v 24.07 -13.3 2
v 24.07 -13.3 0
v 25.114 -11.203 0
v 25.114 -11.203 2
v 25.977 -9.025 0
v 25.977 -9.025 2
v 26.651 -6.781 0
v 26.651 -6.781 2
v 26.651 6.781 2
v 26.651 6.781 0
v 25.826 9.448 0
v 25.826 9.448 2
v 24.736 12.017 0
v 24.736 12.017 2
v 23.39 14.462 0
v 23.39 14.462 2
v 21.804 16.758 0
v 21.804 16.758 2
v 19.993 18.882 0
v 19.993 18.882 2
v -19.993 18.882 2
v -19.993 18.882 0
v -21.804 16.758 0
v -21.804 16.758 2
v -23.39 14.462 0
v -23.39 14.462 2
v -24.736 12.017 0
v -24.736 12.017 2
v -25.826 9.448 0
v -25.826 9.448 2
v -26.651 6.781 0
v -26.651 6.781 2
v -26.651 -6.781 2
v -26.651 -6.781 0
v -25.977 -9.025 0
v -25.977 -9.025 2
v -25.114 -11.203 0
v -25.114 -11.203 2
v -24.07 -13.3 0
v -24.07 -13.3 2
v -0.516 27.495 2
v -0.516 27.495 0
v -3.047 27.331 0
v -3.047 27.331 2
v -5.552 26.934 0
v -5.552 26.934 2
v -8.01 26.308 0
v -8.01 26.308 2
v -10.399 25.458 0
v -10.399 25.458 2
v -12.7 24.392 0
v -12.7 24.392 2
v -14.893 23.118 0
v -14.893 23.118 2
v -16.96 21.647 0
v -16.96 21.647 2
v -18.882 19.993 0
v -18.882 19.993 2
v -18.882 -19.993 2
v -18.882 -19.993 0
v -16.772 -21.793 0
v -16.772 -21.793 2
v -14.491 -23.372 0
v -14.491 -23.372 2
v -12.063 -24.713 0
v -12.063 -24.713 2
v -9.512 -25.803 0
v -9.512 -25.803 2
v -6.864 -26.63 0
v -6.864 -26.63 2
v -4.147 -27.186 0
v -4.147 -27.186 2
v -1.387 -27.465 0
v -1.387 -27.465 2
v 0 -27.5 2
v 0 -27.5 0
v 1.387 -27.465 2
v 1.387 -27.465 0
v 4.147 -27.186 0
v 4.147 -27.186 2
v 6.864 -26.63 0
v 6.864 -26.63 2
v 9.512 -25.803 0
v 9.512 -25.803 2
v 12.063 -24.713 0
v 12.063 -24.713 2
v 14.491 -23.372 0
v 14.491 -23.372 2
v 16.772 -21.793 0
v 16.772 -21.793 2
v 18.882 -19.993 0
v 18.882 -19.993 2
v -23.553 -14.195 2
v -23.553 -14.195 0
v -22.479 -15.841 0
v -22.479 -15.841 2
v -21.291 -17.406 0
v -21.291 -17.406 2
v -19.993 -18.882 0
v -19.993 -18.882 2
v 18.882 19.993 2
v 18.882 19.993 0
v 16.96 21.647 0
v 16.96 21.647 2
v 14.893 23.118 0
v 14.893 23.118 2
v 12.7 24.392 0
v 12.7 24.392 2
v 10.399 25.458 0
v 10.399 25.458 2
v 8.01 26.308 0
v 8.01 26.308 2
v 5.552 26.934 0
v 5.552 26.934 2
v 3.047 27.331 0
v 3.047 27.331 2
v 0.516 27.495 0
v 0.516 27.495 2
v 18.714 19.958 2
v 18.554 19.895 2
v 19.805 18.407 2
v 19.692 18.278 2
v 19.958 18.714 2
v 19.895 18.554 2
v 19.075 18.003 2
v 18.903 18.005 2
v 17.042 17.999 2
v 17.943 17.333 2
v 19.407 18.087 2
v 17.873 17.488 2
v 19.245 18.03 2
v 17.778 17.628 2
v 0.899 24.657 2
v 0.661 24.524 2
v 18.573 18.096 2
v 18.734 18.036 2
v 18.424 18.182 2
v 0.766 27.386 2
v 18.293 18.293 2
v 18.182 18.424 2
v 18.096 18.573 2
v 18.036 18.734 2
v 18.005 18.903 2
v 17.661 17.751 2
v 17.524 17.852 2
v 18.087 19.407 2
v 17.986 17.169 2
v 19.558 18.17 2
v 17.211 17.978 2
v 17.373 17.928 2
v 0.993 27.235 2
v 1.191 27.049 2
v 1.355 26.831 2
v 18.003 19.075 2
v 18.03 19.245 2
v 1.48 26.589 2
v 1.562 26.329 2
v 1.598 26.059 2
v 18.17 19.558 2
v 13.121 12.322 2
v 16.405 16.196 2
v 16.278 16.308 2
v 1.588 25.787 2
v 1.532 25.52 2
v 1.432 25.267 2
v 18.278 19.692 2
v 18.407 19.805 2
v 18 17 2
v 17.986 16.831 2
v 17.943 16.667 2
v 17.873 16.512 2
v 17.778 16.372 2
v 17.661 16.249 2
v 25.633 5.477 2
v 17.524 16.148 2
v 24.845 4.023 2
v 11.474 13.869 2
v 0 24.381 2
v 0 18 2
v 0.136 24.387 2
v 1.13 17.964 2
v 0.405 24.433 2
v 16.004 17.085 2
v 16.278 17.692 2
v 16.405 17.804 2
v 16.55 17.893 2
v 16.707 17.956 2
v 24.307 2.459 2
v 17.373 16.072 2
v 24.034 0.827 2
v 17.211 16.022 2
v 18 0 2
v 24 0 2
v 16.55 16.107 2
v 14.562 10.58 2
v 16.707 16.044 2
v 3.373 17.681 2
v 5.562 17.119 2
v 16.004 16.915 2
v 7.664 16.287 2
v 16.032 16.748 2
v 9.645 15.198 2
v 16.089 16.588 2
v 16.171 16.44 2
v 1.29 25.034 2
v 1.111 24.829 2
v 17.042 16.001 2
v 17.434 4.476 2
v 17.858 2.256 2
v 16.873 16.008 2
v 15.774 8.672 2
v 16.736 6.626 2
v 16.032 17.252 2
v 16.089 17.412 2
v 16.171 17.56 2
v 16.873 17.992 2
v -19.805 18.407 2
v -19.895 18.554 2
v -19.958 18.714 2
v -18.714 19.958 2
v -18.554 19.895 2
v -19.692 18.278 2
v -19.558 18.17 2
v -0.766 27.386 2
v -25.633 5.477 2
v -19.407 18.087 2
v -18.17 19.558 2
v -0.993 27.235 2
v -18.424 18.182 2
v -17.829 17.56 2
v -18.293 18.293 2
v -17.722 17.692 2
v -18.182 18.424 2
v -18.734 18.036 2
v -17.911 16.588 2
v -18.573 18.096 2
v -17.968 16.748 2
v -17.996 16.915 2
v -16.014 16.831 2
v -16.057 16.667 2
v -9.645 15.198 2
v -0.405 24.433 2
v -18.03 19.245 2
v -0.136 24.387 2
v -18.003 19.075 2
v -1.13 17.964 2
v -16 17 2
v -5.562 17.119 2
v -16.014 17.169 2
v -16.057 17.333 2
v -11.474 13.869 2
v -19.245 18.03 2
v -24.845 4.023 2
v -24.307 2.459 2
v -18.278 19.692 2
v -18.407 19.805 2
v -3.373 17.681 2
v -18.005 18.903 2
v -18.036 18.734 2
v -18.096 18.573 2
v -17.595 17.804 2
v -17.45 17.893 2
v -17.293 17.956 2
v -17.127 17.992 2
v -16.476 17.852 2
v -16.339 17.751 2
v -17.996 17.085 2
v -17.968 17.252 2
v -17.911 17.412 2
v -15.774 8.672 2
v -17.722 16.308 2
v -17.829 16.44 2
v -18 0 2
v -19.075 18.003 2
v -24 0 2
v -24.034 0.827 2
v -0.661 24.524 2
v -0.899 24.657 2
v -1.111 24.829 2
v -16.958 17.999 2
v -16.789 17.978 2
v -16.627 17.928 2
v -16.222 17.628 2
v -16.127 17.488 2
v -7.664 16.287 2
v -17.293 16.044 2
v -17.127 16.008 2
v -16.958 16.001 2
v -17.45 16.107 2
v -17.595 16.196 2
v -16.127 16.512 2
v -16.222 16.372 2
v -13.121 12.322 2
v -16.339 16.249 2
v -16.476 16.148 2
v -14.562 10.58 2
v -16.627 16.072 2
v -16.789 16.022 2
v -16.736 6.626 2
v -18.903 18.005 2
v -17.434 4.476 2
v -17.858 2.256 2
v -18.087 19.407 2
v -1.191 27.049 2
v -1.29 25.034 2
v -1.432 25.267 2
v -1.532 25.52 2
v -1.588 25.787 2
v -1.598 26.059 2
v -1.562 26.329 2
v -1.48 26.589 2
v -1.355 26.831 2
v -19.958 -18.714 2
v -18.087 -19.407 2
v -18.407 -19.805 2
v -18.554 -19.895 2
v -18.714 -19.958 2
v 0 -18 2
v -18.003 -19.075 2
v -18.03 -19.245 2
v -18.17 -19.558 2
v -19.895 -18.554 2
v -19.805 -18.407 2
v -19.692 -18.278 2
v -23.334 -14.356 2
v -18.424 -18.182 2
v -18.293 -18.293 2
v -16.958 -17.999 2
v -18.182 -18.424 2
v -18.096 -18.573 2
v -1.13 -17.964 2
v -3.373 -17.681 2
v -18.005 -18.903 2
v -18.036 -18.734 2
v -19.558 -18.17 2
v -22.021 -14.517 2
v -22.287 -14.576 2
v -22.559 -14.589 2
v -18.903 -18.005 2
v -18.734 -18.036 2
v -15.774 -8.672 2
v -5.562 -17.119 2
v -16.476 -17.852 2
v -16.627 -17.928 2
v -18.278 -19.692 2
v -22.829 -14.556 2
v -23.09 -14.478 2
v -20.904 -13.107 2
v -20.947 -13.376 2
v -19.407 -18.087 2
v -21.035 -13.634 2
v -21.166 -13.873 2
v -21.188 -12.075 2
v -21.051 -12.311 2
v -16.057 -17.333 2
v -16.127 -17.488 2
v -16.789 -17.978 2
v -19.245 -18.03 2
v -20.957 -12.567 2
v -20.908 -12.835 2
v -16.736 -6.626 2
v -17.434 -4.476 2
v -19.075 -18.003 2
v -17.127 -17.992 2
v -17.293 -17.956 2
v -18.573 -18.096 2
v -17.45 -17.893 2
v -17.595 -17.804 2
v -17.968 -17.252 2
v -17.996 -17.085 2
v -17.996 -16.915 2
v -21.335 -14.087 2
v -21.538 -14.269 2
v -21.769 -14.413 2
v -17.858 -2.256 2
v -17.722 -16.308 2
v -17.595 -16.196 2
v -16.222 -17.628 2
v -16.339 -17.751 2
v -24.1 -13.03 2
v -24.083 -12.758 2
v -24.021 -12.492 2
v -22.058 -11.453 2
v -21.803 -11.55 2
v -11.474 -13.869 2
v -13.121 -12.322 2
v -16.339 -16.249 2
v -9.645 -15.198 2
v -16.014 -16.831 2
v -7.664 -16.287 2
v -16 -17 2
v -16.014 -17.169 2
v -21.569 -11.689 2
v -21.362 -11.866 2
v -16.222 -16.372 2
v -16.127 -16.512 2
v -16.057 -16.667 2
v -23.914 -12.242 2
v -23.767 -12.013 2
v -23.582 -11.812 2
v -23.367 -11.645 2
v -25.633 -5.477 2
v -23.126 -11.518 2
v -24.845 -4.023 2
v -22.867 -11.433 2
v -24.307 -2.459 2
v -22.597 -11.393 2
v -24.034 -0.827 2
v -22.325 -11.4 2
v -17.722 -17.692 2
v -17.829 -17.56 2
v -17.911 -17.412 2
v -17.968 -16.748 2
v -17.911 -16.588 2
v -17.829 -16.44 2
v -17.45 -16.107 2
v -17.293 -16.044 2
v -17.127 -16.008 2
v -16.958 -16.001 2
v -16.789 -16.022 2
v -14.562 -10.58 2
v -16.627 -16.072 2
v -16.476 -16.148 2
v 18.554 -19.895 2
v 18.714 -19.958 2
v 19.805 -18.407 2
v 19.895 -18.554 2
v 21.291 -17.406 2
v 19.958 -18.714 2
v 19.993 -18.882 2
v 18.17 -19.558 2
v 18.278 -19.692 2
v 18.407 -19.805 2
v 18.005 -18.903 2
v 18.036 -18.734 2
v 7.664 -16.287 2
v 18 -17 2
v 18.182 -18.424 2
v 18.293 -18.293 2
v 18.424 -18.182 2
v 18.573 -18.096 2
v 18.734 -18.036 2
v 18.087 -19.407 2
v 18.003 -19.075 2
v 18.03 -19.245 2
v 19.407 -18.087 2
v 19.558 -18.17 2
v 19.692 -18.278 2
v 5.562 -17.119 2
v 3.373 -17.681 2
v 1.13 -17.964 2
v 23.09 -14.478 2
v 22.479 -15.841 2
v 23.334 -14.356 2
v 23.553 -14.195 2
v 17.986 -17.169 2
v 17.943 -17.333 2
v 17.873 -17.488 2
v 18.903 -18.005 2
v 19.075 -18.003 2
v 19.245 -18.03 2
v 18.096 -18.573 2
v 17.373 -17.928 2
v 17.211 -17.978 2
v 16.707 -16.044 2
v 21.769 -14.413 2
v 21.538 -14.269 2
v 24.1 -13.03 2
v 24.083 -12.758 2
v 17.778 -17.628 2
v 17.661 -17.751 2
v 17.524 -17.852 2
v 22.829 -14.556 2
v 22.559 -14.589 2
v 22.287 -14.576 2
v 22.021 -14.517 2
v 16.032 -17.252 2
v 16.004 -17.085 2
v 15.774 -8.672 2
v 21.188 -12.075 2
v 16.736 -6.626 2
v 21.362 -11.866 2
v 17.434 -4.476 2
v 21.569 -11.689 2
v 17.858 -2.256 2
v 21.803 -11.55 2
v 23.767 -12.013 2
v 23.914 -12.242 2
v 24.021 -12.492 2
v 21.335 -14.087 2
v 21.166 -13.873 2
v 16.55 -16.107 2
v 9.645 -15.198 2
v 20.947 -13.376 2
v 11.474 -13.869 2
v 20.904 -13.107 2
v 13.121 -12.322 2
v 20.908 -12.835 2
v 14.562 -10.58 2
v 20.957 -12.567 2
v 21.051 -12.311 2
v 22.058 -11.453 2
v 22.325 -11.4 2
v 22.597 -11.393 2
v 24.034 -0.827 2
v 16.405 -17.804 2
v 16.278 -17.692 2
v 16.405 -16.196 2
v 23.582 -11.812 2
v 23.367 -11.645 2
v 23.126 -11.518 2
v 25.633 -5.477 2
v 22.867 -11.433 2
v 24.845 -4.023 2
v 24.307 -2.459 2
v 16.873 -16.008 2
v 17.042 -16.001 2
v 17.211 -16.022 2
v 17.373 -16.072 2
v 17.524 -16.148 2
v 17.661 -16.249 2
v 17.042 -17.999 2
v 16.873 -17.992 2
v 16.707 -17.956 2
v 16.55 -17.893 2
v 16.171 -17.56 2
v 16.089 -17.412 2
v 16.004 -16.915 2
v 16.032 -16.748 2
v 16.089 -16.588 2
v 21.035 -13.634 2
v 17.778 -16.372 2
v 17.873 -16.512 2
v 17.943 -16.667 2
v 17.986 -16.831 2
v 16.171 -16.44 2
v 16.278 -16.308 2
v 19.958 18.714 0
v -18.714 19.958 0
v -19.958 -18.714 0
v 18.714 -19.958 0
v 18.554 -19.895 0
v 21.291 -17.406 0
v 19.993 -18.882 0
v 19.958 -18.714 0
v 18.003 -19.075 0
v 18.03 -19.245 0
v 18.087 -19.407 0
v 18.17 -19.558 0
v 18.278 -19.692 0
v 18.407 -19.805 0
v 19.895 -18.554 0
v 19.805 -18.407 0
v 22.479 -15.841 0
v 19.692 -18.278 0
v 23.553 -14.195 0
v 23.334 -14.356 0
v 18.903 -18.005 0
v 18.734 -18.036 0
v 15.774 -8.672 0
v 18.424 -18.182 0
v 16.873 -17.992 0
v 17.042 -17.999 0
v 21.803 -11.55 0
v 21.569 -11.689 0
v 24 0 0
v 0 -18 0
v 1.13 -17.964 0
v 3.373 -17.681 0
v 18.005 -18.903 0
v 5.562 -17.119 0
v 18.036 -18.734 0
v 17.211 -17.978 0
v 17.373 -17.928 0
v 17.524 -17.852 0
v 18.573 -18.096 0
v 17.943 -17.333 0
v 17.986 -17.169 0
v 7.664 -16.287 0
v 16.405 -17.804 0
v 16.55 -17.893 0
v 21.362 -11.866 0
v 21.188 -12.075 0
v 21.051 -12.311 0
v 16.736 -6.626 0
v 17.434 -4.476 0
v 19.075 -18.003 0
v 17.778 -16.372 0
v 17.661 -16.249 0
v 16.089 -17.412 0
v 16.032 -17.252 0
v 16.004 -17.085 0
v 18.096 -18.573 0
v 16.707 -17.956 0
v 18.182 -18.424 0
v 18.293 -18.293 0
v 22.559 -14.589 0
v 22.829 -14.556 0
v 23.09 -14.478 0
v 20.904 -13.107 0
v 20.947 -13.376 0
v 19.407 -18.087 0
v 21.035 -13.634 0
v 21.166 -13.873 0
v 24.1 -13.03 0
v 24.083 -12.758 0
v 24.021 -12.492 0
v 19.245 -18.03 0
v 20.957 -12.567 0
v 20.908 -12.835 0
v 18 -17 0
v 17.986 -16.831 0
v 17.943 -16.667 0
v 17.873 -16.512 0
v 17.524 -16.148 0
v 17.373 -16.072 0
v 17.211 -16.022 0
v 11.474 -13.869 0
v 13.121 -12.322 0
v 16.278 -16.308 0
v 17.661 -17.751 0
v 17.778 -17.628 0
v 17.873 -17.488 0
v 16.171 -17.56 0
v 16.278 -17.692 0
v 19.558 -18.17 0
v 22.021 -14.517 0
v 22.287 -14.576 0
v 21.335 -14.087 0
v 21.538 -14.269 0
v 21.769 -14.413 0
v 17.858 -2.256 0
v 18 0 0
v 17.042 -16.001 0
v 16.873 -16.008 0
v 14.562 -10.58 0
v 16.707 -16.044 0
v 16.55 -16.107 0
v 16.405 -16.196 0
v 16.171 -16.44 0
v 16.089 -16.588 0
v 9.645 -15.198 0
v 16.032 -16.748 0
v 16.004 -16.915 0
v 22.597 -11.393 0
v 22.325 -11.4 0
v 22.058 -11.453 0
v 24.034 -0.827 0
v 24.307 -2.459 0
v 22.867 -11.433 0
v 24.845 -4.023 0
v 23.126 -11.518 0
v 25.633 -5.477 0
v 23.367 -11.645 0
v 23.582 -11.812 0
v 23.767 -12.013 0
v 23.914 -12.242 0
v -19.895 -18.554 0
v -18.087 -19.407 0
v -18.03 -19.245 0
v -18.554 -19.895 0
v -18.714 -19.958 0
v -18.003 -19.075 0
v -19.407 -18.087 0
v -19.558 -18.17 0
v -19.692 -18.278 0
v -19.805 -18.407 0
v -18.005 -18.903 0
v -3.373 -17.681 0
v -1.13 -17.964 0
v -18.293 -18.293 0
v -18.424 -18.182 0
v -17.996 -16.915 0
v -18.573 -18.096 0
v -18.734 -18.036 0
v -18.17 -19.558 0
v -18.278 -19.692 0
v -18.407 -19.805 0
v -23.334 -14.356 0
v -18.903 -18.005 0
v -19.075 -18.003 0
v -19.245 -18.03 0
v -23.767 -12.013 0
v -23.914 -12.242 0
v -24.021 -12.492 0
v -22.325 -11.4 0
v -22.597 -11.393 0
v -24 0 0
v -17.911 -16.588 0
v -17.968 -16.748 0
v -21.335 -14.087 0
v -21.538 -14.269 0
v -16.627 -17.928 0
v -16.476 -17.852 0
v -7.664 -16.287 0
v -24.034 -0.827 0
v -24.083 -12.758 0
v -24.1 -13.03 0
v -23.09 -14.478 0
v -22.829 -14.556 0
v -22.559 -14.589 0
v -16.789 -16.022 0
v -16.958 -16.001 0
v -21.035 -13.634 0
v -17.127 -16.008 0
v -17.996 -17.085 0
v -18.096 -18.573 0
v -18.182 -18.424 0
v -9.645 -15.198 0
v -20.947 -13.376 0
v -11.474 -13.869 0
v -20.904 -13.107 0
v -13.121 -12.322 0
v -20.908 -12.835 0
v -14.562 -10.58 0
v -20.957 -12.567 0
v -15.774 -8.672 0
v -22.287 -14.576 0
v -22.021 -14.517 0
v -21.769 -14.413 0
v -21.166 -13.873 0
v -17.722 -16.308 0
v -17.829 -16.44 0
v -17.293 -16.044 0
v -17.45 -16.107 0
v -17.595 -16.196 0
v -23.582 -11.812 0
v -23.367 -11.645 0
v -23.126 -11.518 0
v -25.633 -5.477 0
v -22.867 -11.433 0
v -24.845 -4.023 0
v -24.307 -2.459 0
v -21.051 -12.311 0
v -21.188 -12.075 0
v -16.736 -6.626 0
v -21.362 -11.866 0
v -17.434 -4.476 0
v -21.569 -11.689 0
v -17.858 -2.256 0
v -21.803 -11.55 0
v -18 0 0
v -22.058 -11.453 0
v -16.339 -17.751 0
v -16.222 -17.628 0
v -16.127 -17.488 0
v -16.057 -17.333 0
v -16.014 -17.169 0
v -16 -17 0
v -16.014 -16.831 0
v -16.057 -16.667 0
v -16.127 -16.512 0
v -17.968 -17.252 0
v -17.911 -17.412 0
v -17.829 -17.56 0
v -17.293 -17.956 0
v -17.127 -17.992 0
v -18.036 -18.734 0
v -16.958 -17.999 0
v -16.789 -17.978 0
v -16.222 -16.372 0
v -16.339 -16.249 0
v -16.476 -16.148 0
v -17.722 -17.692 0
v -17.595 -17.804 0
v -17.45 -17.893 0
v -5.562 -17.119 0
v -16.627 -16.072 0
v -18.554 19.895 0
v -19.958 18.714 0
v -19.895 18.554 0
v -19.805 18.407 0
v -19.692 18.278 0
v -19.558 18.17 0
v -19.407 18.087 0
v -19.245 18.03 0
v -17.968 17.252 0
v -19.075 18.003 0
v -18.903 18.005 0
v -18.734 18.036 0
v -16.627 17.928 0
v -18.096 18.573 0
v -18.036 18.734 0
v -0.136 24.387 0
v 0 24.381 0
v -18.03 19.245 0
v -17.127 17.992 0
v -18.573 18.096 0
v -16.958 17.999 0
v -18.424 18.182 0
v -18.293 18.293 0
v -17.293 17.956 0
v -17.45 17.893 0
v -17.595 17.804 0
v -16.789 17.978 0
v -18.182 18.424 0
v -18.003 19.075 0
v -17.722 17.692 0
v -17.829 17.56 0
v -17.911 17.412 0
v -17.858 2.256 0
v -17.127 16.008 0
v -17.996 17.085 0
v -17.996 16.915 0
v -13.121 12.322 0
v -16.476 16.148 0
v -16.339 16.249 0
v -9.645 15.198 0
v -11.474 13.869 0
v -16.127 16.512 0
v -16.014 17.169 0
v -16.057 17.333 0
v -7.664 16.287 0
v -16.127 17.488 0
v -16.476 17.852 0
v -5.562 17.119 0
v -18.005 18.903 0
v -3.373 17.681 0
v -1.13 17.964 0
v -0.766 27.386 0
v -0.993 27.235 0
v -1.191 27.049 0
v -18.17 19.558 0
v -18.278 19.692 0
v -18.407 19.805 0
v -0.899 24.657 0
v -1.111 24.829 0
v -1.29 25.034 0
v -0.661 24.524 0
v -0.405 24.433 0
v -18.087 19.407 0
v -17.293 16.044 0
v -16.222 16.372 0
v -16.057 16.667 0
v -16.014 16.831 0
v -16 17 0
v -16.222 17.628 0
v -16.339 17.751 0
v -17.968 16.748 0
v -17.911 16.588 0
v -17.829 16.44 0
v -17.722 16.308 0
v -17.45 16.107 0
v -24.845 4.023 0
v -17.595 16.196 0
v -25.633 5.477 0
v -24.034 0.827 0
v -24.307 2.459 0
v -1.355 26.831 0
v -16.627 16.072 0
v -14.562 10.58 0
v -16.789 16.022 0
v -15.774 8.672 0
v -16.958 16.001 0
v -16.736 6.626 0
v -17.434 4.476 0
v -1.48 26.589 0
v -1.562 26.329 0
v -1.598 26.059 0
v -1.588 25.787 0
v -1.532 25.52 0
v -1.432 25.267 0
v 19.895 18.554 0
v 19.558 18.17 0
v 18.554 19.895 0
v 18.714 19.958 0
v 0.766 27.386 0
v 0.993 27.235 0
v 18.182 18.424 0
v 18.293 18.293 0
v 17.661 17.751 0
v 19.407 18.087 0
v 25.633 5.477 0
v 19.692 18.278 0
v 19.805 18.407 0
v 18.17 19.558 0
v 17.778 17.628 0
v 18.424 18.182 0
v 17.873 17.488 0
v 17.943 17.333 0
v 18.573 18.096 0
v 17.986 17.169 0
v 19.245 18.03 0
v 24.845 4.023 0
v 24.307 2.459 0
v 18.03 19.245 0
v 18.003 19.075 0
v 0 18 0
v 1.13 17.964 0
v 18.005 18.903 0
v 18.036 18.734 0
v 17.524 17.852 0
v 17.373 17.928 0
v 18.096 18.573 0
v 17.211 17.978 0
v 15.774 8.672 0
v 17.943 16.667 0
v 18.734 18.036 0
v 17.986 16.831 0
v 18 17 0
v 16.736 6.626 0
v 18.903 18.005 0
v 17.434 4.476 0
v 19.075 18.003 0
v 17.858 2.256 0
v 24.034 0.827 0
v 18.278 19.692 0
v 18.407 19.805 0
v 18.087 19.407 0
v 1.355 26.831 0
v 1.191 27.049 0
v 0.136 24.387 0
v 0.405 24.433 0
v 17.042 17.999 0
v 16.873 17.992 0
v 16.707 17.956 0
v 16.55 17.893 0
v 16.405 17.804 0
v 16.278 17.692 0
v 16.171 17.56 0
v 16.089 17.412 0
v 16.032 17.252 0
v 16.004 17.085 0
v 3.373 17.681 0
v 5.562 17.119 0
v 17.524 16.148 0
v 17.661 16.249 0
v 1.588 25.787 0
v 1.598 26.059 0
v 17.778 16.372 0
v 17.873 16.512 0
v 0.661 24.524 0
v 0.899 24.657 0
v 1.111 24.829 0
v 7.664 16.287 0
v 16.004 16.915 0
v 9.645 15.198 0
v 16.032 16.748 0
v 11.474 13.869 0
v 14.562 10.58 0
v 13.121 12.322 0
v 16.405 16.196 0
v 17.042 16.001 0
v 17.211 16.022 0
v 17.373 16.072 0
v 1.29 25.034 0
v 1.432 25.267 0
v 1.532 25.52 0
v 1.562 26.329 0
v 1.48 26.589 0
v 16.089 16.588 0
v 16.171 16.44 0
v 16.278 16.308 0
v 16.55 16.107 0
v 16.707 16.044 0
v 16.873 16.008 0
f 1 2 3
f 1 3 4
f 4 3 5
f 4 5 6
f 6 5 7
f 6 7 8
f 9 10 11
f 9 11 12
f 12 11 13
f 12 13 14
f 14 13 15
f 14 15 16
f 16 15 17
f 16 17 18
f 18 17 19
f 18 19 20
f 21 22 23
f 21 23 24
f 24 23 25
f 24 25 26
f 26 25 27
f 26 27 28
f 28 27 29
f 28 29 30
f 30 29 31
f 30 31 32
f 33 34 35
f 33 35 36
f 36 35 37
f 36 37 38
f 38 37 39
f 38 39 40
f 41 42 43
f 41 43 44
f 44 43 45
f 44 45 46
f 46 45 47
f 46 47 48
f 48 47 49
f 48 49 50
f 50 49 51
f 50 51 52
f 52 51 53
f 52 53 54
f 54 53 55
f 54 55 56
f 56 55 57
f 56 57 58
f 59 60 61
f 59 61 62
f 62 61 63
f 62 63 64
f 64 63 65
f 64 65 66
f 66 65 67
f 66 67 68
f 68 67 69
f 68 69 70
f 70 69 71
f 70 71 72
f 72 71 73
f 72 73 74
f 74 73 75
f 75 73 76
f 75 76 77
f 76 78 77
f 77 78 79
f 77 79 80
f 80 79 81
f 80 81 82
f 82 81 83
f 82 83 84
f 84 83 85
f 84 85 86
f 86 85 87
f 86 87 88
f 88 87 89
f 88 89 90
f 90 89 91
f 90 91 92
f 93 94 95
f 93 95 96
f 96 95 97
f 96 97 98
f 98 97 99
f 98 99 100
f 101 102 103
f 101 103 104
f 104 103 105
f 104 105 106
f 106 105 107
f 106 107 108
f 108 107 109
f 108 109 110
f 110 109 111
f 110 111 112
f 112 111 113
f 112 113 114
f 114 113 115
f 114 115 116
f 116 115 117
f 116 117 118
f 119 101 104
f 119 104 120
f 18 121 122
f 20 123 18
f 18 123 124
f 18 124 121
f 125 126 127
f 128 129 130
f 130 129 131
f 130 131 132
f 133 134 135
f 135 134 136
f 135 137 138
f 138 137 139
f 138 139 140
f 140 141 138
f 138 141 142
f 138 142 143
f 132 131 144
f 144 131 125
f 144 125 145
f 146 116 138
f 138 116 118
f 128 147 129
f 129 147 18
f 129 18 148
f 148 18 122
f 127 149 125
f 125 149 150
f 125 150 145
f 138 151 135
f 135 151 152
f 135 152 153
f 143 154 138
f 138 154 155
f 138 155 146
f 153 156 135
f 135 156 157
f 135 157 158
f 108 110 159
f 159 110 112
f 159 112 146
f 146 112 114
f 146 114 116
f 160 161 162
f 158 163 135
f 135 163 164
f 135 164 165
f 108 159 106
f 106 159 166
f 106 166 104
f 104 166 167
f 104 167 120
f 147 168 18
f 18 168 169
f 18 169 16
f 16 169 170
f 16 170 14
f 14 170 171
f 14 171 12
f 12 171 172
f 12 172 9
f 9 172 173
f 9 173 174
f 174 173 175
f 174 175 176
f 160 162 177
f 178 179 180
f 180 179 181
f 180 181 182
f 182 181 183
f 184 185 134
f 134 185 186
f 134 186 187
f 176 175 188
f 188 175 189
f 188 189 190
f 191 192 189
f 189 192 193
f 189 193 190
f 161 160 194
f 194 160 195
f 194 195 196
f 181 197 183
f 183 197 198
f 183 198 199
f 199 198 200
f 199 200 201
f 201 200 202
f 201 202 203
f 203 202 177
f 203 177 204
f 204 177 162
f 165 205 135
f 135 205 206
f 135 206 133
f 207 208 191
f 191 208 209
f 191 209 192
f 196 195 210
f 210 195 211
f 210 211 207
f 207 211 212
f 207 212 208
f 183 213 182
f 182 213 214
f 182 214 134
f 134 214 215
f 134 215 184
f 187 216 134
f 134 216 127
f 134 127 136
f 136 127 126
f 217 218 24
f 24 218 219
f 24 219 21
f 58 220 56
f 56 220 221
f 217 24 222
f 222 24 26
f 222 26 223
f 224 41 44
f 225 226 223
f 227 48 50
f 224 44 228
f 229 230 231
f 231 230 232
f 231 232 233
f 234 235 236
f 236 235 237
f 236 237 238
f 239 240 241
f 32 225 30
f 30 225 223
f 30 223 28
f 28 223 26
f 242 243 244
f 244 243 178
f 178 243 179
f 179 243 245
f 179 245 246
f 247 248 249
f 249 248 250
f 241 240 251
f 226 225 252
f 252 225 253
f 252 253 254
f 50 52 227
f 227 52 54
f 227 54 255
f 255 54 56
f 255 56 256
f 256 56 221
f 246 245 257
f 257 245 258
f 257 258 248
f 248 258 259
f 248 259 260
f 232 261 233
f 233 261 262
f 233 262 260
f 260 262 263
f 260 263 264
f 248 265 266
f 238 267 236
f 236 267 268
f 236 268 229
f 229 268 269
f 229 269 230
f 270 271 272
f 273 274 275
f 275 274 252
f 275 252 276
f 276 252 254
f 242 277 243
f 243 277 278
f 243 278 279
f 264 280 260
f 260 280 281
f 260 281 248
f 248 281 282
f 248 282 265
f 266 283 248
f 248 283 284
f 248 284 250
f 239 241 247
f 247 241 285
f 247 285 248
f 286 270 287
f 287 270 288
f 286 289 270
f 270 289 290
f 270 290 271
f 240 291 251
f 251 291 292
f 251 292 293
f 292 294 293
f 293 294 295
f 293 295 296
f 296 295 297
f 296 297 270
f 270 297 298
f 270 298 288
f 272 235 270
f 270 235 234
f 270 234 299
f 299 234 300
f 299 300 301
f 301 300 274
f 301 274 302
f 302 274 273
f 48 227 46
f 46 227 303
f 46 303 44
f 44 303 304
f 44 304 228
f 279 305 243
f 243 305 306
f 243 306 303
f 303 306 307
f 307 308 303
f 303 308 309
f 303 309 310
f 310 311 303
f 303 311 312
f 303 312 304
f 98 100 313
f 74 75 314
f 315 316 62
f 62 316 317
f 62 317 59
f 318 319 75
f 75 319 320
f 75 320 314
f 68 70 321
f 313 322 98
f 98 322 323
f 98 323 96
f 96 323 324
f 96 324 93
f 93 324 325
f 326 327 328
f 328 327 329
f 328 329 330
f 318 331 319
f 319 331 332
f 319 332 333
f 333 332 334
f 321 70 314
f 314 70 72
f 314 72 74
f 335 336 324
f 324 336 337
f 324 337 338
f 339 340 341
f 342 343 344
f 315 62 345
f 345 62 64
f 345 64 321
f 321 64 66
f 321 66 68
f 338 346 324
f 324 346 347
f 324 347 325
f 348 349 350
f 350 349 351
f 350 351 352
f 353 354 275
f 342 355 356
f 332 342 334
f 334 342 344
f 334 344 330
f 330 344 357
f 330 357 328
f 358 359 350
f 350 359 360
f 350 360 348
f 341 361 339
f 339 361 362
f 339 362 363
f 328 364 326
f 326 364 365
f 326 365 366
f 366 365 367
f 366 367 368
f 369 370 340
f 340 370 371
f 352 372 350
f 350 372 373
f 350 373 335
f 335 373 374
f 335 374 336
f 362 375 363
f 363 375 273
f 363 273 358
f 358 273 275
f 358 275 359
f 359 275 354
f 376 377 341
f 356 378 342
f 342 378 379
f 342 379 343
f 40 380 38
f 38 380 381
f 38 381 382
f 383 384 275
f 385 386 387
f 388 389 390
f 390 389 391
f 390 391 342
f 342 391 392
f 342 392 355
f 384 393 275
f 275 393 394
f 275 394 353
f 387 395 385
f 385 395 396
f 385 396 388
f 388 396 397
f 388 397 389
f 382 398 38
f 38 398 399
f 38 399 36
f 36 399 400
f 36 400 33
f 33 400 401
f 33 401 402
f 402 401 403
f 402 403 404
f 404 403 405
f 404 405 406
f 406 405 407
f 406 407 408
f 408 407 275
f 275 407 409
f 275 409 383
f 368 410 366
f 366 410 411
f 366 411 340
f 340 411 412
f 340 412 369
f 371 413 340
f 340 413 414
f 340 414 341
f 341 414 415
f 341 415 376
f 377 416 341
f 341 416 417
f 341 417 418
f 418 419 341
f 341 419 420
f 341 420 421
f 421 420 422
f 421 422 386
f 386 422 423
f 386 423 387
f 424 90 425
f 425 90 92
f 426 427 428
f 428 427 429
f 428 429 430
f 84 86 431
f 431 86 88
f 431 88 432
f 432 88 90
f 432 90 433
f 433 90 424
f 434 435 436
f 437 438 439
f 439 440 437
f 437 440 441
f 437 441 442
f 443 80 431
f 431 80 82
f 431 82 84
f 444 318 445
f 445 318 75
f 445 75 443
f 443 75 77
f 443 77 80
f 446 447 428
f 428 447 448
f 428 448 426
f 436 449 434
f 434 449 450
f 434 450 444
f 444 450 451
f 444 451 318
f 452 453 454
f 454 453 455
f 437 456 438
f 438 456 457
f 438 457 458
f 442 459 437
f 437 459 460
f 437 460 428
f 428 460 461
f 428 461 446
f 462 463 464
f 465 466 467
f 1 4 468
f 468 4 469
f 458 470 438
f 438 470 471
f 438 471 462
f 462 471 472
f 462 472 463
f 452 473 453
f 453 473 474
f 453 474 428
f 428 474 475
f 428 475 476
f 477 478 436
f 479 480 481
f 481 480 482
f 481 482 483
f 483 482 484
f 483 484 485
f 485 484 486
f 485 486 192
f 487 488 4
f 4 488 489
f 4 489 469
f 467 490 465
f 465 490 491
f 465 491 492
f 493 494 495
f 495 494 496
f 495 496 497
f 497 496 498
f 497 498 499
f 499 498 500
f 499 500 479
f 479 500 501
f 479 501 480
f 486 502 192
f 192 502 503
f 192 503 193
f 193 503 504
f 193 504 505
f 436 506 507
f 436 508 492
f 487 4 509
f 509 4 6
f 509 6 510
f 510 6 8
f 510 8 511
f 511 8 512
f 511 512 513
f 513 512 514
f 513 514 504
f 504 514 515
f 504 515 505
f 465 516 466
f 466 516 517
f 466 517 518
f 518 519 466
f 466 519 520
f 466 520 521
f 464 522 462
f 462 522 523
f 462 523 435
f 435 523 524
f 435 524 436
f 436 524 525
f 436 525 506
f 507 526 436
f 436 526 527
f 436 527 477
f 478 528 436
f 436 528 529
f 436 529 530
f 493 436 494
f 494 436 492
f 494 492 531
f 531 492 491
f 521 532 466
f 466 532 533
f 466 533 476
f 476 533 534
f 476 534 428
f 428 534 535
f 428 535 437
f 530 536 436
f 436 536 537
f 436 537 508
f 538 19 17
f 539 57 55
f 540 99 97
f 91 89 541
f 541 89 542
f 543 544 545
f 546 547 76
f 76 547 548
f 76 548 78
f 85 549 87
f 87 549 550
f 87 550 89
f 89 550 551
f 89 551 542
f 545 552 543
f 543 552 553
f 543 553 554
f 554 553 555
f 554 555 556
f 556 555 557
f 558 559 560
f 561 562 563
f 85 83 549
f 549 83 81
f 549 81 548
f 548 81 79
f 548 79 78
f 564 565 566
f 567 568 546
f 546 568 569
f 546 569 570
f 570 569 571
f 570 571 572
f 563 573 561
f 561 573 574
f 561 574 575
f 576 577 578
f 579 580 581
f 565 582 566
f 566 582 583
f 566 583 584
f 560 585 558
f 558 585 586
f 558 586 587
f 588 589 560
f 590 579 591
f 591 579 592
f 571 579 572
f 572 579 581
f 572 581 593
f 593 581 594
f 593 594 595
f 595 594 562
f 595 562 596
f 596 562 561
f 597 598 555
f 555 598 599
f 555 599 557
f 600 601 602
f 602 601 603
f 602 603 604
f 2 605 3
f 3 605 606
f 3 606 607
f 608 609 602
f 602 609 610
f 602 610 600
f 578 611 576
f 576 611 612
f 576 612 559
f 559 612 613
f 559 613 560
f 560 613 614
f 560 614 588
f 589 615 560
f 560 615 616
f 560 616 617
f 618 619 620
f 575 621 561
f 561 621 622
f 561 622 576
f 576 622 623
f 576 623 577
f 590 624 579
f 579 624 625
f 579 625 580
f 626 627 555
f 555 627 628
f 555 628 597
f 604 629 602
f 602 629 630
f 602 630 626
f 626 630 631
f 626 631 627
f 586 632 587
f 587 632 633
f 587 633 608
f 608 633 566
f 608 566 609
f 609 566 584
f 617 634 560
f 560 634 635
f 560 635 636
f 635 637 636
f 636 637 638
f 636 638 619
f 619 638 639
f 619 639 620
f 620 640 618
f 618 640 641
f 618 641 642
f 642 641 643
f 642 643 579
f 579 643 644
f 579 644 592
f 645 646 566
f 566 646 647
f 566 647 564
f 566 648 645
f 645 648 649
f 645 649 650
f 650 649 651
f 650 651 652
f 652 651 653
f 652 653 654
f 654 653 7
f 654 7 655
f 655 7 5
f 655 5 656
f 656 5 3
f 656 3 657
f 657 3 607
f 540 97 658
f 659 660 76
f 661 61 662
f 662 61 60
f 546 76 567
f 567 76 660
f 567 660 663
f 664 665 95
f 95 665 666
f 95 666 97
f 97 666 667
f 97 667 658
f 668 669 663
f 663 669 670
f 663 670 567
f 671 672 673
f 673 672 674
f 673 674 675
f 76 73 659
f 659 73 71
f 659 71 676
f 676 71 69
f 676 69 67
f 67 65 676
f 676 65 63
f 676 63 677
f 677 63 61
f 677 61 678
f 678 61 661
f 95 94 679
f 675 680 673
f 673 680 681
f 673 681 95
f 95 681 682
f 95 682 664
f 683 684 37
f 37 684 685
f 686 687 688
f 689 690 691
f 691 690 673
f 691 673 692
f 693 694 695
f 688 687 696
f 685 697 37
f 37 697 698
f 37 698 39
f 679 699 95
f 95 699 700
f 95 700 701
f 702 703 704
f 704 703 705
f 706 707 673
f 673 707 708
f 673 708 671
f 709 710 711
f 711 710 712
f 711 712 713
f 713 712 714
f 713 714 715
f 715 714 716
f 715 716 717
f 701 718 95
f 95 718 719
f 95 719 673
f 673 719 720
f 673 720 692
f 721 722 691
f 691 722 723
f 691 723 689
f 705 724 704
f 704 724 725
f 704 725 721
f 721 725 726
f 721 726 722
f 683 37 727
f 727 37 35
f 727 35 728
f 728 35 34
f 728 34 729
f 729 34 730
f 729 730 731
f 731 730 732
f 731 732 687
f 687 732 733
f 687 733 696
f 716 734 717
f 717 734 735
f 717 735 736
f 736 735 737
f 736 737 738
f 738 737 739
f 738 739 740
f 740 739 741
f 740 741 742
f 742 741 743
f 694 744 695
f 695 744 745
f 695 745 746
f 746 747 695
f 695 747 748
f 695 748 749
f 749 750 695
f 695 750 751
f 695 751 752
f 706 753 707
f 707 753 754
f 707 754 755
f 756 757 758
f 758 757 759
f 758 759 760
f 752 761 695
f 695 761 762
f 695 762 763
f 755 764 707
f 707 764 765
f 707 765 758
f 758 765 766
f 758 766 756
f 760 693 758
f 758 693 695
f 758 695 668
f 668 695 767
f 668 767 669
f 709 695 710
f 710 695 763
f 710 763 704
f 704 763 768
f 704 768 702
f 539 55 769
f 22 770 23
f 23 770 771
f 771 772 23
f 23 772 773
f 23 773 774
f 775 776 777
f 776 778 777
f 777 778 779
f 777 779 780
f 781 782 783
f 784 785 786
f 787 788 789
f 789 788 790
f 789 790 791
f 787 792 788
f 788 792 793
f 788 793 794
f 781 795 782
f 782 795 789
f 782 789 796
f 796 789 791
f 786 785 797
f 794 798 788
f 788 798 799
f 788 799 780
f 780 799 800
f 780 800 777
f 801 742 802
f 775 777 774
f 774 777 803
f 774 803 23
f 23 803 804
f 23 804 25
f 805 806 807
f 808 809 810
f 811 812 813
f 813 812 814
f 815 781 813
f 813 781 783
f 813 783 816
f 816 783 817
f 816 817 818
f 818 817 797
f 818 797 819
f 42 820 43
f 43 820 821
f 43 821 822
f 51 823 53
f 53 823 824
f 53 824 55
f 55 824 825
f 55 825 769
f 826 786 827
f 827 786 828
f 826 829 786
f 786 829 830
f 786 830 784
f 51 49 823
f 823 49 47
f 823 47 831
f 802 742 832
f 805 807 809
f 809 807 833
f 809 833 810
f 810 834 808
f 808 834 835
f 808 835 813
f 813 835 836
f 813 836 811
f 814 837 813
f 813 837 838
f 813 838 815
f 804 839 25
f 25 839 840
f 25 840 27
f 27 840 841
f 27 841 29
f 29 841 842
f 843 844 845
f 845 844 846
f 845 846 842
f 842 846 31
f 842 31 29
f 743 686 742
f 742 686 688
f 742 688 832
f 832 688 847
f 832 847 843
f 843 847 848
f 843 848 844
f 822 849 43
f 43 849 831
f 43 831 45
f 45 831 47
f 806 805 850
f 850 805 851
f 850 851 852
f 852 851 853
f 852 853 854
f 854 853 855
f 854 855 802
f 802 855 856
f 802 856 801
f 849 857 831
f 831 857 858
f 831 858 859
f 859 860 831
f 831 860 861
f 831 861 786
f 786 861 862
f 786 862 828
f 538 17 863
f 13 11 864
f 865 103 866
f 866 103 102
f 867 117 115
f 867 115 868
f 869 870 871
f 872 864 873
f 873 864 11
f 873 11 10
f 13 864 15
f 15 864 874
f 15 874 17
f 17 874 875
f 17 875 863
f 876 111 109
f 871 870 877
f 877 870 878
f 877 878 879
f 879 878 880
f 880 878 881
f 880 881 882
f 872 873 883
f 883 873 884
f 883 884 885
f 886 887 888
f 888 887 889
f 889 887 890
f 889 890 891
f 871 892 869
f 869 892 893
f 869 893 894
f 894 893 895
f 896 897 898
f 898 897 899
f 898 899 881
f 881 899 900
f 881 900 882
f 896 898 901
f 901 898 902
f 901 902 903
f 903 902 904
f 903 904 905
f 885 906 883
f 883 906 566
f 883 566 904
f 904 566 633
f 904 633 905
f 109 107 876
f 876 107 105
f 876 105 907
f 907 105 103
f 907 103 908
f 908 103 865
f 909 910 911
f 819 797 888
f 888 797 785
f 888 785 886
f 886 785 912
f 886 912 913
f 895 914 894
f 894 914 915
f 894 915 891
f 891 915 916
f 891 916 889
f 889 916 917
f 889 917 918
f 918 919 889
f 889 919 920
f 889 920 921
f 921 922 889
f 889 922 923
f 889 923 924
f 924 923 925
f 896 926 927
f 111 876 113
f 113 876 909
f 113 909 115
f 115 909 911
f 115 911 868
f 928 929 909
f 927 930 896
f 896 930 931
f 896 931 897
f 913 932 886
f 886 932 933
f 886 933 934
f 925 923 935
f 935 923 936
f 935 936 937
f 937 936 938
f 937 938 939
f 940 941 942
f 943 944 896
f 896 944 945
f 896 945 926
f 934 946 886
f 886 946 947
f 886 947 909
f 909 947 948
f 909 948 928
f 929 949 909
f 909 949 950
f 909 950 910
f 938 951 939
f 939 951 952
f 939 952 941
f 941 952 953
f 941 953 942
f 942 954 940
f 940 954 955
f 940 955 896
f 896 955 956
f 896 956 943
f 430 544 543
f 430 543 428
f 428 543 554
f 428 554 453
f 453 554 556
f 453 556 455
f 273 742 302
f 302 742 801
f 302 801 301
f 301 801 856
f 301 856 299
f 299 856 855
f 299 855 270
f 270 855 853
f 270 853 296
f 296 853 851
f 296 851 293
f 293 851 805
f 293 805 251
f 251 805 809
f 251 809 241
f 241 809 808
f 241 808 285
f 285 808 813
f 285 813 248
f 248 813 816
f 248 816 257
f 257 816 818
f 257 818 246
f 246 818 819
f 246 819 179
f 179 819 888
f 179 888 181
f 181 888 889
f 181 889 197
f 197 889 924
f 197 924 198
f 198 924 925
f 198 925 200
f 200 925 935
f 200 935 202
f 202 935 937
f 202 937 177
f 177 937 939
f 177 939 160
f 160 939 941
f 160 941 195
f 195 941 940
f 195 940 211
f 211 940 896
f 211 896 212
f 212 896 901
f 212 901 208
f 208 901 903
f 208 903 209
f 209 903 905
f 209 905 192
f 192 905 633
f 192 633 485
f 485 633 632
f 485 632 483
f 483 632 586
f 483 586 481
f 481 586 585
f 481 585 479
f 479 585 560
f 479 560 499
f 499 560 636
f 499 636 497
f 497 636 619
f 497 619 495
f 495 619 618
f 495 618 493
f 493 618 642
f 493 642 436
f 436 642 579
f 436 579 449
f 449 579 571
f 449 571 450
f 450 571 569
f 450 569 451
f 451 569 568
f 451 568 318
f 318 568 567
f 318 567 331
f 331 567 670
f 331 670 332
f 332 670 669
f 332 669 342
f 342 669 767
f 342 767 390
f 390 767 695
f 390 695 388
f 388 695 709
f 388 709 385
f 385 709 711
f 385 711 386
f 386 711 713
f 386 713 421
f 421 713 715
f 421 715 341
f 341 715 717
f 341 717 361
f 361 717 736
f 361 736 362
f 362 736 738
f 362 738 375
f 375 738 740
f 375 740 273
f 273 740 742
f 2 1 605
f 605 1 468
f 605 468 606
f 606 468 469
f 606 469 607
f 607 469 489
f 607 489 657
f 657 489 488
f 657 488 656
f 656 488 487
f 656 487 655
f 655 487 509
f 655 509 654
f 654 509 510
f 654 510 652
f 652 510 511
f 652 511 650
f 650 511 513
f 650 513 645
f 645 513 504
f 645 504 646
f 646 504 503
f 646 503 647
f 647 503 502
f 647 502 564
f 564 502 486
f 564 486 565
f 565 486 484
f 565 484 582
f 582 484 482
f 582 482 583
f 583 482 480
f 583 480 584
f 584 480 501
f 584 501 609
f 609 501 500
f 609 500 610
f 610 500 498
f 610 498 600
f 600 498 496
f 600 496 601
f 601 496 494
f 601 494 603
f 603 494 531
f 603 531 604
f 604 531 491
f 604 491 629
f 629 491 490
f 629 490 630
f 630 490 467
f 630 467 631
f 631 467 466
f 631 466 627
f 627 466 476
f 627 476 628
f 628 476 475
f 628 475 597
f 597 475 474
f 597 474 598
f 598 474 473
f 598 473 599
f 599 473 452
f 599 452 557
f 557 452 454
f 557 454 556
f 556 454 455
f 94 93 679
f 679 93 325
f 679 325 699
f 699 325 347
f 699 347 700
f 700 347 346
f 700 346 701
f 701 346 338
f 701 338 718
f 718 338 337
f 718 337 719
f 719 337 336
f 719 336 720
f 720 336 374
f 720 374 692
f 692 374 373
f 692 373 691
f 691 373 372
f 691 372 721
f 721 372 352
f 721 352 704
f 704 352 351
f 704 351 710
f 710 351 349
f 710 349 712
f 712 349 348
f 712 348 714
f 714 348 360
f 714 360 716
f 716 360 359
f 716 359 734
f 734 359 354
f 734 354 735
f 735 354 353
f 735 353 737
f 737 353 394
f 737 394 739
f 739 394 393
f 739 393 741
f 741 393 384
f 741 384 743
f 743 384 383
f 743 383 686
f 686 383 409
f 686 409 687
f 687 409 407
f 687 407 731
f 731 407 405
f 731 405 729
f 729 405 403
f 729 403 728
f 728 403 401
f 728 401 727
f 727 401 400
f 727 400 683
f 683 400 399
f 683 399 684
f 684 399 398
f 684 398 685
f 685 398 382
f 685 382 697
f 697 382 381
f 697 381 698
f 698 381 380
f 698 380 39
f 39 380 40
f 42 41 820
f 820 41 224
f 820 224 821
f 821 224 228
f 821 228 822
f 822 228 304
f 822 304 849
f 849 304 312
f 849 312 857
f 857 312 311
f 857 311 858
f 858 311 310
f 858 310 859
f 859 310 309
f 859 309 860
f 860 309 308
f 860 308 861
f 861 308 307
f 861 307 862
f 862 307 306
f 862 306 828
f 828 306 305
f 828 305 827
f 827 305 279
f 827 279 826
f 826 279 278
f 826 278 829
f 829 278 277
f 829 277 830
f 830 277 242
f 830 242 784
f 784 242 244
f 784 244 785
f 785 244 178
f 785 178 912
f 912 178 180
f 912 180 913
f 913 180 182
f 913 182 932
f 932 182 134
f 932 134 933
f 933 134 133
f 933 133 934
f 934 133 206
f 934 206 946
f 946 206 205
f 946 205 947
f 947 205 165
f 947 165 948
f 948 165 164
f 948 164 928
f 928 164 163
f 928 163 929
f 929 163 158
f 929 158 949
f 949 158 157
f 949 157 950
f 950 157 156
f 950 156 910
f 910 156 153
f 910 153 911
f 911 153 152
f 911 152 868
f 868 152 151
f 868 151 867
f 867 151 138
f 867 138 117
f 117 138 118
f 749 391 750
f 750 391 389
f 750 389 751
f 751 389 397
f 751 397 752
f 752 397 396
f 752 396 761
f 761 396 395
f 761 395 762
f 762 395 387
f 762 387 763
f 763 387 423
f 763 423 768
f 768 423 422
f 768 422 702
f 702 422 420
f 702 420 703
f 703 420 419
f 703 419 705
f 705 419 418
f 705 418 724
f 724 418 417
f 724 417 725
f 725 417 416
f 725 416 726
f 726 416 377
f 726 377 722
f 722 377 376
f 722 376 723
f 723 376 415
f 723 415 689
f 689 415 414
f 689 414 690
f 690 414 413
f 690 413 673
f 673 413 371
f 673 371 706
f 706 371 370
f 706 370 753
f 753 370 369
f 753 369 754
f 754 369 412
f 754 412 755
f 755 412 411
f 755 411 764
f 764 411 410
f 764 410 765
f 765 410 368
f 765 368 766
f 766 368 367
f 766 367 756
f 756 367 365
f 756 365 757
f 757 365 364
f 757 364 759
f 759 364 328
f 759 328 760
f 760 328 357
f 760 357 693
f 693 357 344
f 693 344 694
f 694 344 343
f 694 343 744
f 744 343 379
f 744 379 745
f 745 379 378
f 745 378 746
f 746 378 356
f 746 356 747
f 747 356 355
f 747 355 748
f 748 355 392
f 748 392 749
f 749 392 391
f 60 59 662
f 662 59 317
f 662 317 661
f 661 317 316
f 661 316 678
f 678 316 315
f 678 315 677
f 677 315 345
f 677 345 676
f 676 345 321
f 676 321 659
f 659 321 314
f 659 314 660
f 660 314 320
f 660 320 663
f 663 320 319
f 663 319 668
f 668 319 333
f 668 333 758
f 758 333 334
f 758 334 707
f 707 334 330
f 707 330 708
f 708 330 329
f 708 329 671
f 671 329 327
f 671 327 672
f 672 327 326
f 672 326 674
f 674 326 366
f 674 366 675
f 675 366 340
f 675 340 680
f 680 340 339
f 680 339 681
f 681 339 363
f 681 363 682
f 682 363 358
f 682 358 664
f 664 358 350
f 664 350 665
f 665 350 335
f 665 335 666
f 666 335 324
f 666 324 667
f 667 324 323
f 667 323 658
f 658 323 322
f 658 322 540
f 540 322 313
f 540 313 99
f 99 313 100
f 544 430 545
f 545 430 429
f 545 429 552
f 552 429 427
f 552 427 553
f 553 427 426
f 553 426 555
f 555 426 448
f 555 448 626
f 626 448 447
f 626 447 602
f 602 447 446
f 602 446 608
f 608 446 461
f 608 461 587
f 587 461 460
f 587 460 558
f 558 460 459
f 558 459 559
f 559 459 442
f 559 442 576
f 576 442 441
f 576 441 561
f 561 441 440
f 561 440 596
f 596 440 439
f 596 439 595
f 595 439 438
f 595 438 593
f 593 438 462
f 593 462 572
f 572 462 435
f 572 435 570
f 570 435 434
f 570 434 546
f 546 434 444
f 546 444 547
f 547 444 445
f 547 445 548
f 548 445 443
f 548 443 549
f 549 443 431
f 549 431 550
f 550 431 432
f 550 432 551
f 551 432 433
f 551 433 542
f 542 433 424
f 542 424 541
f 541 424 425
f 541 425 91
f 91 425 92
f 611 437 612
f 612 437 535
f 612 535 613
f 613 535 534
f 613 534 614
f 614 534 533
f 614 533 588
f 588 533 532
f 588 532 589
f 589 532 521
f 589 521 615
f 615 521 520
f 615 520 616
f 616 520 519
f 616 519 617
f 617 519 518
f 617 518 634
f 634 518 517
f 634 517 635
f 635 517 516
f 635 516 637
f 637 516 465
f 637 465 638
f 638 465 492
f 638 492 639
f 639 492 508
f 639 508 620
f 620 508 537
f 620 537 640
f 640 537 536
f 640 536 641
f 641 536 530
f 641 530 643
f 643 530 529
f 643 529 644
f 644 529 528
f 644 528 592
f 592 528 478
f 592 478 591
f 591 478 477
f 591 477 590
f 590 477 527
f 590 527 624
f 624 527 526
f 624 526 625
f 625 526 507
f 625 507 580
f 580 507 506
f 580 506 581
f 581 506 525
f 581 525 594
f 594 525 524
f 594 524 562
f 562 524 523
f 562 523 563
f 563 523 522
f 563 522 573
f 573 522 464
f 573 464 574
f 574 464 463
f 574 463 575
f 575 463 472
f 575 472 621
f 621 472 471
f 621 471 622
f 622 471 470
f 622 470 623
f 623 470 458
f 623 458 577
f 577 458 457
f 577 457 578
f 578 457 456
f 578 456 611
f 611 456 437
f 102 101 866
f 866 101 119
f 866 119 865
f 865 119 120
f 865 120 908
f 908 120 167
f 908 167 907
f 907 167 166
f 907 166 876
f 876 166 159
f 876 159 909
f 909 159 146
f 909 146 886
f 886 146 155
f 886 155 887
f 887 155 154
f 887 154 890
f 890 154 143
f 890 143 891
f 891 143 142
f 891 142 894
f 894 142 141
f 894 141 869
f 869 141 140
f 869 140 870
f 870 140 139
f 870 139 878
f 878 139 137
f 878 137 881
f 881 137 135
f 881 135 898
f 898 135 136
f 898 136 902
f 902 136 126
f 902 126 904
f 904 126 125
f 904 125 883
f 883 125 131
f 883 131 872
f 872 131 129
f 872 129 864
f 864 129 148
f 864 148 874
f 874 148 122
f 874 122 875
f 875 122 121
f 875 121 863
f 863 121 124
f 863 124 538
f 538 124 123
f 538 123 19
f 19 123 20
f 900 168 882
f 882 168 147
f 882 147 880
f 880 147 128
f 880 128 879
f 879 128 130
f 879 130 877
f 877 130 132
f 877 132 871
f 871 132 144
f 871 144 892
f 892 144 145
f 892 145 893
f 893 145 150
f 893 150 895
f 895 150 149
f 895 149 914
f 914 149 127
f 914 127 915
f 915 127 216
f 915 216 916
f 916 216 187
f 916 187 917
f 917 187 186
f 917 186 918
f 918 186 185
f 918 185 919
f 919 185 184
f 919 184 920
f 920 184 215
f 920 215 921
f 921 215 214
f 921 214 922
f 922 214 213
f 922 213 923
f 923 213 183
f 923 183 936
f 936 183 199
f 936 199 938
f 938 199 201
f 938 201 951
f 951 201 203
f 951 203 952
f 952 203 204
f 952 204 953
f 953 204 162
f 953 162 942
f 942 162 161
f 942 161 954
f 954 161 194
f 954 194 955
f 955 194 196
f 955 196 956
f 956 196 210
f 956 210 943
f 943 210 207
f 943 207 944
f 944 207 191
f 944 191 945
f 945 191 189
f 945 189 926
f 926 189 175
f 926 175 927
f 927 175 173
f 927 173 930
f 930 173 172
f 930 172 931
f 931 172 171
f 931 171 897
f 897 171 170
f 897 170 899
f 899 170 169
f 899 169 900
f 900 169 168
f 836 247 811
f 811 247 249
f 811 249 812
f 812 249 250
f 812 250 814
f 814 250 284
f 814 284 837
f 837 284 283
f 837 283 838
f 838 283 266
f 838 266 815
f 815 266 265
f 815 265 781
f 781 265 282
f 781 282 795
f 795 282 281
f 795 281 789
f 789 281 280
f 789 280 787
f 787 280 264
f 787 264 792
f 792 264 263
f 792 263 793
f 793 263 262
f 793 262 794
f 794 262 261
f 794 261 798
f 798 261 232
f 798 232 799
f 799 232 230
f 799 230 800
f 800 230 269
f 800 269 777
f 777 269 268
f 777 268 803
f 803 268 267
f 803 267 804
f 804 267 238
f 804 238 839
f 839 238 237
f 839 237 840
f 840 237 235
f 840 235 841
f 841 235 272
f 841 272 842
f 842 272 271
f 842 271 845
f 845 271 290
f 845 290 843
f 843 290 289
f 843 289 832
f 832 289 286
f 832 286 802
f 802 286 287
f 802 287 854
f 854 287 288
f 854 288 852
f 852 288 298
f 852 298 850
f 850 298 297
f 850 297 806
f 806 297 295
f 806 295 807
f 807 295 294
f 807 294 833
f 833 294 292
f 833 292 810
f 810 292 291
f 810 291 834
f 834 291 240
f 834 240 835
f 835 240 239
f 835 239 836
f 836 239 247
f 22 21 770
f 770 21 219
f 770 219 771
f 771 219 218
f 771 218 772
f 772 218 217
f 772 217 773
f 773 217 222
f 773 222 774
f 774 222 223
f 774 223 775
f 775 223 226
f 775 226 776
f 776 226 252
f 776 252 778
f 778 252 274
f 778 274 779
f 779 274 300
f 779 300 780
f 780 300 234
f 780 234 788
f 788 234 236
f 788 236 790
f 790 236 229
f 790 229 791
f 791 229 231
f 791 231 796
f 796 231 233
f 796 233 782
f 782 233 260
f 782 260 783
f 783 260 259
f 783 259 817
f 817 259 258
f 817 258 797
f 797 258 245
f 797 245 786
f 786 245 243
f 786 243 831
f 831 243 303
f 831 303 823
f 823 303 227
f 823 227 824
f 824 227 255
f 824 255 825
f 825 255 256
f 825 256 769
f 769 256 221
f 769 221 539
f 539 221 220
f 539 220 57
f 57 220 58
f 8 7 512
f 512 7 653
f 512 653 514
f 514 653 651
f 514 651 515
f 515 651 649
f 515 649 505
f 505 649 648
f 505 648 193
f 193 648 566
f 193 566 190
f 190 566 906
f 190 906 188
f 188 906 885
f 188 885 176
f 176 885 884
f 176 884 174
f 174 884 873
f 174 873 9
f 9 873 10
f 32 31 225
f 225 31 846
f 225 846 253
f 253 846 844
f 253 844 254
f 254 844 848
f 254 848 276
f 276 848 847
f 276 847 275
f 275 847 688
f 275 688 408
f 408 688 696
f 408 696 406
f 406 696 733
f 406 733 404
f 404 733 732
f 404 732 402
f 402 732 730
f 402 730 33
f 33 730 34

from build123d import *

# Parameters (mm, degrees)
SKETCH1_R             = 18
BOSS_EXTRUDE1_DEPTH   = 2
SKETCH2_R             = 1.6
CUT_EXTRUDE1_DEPTH    = 2
F_2_0MM_DOWEL_HOLE1_D = 2
SKETCH_1_R            = 10
CUT_EXTRUDE_1_DEPTH   = 39.942264957


with BuildPart() as part:
    # Sketch1 → Boss-Extrude1 (new body)
    with BuildSketch(Plane.XY):
        with BuildLine():
            ThreePointArc((-27.5, 0), (0, -27.5), (27.5, 0))
            ThreePointArc((27.5, 0), (0, 27.5), (-27.5, 0))
        make_face()
        Circle(SKETCH1_R, mode=Mode.SUBTRACT)
    extrude(amount=BOSS_EXTRUDE1_DEPTH)

    # Sketch2 → Cut-Extrude1 (cut)
    with BuildSketch(Plane.XY.offset(2)):
        with Locations((0, 25.980762114)):
            Circle(SKETCH2_R)
        with Locations((-22.5, -12.990381057)):
            Circle(SKETCH2_R)
        with Locations((22.5, -12.990381057)):
            Circle(SKETCH2_R)
    extrude(amount=-CUT_EXTRUDE1_DEPTH, mode=Mode.SUBTRACT)

    # Ø2.0mm Dowel Hole1 (through all)
    with Locations(Plane(origin=(-19, 19, 2), x_dir=(1, 0, 0), z_dir=(0, 0, 1))):
        with Locations((0, 0), (2, -2), (36, -2), (38, 0), (36, -36), (38, -38), (0, -38), (2, -36)):
            Hole(F_2_0MM_DOWEL_HOLE1_D / 2)

    # 스케치1 → 컷-돌출1 (cut, through all)
    with BuildSketch(Plane.XY):
        with Locations((-34, 0)):
            Circle(SKETCH_1_R)
        with Locations((34, 0)):
            Circle(SKETCH_1_R)
    extrude(amount=CUT_EXTRUDE_1_DEPTH, mode=Mode.SUBTRACT)


solid = part.part
